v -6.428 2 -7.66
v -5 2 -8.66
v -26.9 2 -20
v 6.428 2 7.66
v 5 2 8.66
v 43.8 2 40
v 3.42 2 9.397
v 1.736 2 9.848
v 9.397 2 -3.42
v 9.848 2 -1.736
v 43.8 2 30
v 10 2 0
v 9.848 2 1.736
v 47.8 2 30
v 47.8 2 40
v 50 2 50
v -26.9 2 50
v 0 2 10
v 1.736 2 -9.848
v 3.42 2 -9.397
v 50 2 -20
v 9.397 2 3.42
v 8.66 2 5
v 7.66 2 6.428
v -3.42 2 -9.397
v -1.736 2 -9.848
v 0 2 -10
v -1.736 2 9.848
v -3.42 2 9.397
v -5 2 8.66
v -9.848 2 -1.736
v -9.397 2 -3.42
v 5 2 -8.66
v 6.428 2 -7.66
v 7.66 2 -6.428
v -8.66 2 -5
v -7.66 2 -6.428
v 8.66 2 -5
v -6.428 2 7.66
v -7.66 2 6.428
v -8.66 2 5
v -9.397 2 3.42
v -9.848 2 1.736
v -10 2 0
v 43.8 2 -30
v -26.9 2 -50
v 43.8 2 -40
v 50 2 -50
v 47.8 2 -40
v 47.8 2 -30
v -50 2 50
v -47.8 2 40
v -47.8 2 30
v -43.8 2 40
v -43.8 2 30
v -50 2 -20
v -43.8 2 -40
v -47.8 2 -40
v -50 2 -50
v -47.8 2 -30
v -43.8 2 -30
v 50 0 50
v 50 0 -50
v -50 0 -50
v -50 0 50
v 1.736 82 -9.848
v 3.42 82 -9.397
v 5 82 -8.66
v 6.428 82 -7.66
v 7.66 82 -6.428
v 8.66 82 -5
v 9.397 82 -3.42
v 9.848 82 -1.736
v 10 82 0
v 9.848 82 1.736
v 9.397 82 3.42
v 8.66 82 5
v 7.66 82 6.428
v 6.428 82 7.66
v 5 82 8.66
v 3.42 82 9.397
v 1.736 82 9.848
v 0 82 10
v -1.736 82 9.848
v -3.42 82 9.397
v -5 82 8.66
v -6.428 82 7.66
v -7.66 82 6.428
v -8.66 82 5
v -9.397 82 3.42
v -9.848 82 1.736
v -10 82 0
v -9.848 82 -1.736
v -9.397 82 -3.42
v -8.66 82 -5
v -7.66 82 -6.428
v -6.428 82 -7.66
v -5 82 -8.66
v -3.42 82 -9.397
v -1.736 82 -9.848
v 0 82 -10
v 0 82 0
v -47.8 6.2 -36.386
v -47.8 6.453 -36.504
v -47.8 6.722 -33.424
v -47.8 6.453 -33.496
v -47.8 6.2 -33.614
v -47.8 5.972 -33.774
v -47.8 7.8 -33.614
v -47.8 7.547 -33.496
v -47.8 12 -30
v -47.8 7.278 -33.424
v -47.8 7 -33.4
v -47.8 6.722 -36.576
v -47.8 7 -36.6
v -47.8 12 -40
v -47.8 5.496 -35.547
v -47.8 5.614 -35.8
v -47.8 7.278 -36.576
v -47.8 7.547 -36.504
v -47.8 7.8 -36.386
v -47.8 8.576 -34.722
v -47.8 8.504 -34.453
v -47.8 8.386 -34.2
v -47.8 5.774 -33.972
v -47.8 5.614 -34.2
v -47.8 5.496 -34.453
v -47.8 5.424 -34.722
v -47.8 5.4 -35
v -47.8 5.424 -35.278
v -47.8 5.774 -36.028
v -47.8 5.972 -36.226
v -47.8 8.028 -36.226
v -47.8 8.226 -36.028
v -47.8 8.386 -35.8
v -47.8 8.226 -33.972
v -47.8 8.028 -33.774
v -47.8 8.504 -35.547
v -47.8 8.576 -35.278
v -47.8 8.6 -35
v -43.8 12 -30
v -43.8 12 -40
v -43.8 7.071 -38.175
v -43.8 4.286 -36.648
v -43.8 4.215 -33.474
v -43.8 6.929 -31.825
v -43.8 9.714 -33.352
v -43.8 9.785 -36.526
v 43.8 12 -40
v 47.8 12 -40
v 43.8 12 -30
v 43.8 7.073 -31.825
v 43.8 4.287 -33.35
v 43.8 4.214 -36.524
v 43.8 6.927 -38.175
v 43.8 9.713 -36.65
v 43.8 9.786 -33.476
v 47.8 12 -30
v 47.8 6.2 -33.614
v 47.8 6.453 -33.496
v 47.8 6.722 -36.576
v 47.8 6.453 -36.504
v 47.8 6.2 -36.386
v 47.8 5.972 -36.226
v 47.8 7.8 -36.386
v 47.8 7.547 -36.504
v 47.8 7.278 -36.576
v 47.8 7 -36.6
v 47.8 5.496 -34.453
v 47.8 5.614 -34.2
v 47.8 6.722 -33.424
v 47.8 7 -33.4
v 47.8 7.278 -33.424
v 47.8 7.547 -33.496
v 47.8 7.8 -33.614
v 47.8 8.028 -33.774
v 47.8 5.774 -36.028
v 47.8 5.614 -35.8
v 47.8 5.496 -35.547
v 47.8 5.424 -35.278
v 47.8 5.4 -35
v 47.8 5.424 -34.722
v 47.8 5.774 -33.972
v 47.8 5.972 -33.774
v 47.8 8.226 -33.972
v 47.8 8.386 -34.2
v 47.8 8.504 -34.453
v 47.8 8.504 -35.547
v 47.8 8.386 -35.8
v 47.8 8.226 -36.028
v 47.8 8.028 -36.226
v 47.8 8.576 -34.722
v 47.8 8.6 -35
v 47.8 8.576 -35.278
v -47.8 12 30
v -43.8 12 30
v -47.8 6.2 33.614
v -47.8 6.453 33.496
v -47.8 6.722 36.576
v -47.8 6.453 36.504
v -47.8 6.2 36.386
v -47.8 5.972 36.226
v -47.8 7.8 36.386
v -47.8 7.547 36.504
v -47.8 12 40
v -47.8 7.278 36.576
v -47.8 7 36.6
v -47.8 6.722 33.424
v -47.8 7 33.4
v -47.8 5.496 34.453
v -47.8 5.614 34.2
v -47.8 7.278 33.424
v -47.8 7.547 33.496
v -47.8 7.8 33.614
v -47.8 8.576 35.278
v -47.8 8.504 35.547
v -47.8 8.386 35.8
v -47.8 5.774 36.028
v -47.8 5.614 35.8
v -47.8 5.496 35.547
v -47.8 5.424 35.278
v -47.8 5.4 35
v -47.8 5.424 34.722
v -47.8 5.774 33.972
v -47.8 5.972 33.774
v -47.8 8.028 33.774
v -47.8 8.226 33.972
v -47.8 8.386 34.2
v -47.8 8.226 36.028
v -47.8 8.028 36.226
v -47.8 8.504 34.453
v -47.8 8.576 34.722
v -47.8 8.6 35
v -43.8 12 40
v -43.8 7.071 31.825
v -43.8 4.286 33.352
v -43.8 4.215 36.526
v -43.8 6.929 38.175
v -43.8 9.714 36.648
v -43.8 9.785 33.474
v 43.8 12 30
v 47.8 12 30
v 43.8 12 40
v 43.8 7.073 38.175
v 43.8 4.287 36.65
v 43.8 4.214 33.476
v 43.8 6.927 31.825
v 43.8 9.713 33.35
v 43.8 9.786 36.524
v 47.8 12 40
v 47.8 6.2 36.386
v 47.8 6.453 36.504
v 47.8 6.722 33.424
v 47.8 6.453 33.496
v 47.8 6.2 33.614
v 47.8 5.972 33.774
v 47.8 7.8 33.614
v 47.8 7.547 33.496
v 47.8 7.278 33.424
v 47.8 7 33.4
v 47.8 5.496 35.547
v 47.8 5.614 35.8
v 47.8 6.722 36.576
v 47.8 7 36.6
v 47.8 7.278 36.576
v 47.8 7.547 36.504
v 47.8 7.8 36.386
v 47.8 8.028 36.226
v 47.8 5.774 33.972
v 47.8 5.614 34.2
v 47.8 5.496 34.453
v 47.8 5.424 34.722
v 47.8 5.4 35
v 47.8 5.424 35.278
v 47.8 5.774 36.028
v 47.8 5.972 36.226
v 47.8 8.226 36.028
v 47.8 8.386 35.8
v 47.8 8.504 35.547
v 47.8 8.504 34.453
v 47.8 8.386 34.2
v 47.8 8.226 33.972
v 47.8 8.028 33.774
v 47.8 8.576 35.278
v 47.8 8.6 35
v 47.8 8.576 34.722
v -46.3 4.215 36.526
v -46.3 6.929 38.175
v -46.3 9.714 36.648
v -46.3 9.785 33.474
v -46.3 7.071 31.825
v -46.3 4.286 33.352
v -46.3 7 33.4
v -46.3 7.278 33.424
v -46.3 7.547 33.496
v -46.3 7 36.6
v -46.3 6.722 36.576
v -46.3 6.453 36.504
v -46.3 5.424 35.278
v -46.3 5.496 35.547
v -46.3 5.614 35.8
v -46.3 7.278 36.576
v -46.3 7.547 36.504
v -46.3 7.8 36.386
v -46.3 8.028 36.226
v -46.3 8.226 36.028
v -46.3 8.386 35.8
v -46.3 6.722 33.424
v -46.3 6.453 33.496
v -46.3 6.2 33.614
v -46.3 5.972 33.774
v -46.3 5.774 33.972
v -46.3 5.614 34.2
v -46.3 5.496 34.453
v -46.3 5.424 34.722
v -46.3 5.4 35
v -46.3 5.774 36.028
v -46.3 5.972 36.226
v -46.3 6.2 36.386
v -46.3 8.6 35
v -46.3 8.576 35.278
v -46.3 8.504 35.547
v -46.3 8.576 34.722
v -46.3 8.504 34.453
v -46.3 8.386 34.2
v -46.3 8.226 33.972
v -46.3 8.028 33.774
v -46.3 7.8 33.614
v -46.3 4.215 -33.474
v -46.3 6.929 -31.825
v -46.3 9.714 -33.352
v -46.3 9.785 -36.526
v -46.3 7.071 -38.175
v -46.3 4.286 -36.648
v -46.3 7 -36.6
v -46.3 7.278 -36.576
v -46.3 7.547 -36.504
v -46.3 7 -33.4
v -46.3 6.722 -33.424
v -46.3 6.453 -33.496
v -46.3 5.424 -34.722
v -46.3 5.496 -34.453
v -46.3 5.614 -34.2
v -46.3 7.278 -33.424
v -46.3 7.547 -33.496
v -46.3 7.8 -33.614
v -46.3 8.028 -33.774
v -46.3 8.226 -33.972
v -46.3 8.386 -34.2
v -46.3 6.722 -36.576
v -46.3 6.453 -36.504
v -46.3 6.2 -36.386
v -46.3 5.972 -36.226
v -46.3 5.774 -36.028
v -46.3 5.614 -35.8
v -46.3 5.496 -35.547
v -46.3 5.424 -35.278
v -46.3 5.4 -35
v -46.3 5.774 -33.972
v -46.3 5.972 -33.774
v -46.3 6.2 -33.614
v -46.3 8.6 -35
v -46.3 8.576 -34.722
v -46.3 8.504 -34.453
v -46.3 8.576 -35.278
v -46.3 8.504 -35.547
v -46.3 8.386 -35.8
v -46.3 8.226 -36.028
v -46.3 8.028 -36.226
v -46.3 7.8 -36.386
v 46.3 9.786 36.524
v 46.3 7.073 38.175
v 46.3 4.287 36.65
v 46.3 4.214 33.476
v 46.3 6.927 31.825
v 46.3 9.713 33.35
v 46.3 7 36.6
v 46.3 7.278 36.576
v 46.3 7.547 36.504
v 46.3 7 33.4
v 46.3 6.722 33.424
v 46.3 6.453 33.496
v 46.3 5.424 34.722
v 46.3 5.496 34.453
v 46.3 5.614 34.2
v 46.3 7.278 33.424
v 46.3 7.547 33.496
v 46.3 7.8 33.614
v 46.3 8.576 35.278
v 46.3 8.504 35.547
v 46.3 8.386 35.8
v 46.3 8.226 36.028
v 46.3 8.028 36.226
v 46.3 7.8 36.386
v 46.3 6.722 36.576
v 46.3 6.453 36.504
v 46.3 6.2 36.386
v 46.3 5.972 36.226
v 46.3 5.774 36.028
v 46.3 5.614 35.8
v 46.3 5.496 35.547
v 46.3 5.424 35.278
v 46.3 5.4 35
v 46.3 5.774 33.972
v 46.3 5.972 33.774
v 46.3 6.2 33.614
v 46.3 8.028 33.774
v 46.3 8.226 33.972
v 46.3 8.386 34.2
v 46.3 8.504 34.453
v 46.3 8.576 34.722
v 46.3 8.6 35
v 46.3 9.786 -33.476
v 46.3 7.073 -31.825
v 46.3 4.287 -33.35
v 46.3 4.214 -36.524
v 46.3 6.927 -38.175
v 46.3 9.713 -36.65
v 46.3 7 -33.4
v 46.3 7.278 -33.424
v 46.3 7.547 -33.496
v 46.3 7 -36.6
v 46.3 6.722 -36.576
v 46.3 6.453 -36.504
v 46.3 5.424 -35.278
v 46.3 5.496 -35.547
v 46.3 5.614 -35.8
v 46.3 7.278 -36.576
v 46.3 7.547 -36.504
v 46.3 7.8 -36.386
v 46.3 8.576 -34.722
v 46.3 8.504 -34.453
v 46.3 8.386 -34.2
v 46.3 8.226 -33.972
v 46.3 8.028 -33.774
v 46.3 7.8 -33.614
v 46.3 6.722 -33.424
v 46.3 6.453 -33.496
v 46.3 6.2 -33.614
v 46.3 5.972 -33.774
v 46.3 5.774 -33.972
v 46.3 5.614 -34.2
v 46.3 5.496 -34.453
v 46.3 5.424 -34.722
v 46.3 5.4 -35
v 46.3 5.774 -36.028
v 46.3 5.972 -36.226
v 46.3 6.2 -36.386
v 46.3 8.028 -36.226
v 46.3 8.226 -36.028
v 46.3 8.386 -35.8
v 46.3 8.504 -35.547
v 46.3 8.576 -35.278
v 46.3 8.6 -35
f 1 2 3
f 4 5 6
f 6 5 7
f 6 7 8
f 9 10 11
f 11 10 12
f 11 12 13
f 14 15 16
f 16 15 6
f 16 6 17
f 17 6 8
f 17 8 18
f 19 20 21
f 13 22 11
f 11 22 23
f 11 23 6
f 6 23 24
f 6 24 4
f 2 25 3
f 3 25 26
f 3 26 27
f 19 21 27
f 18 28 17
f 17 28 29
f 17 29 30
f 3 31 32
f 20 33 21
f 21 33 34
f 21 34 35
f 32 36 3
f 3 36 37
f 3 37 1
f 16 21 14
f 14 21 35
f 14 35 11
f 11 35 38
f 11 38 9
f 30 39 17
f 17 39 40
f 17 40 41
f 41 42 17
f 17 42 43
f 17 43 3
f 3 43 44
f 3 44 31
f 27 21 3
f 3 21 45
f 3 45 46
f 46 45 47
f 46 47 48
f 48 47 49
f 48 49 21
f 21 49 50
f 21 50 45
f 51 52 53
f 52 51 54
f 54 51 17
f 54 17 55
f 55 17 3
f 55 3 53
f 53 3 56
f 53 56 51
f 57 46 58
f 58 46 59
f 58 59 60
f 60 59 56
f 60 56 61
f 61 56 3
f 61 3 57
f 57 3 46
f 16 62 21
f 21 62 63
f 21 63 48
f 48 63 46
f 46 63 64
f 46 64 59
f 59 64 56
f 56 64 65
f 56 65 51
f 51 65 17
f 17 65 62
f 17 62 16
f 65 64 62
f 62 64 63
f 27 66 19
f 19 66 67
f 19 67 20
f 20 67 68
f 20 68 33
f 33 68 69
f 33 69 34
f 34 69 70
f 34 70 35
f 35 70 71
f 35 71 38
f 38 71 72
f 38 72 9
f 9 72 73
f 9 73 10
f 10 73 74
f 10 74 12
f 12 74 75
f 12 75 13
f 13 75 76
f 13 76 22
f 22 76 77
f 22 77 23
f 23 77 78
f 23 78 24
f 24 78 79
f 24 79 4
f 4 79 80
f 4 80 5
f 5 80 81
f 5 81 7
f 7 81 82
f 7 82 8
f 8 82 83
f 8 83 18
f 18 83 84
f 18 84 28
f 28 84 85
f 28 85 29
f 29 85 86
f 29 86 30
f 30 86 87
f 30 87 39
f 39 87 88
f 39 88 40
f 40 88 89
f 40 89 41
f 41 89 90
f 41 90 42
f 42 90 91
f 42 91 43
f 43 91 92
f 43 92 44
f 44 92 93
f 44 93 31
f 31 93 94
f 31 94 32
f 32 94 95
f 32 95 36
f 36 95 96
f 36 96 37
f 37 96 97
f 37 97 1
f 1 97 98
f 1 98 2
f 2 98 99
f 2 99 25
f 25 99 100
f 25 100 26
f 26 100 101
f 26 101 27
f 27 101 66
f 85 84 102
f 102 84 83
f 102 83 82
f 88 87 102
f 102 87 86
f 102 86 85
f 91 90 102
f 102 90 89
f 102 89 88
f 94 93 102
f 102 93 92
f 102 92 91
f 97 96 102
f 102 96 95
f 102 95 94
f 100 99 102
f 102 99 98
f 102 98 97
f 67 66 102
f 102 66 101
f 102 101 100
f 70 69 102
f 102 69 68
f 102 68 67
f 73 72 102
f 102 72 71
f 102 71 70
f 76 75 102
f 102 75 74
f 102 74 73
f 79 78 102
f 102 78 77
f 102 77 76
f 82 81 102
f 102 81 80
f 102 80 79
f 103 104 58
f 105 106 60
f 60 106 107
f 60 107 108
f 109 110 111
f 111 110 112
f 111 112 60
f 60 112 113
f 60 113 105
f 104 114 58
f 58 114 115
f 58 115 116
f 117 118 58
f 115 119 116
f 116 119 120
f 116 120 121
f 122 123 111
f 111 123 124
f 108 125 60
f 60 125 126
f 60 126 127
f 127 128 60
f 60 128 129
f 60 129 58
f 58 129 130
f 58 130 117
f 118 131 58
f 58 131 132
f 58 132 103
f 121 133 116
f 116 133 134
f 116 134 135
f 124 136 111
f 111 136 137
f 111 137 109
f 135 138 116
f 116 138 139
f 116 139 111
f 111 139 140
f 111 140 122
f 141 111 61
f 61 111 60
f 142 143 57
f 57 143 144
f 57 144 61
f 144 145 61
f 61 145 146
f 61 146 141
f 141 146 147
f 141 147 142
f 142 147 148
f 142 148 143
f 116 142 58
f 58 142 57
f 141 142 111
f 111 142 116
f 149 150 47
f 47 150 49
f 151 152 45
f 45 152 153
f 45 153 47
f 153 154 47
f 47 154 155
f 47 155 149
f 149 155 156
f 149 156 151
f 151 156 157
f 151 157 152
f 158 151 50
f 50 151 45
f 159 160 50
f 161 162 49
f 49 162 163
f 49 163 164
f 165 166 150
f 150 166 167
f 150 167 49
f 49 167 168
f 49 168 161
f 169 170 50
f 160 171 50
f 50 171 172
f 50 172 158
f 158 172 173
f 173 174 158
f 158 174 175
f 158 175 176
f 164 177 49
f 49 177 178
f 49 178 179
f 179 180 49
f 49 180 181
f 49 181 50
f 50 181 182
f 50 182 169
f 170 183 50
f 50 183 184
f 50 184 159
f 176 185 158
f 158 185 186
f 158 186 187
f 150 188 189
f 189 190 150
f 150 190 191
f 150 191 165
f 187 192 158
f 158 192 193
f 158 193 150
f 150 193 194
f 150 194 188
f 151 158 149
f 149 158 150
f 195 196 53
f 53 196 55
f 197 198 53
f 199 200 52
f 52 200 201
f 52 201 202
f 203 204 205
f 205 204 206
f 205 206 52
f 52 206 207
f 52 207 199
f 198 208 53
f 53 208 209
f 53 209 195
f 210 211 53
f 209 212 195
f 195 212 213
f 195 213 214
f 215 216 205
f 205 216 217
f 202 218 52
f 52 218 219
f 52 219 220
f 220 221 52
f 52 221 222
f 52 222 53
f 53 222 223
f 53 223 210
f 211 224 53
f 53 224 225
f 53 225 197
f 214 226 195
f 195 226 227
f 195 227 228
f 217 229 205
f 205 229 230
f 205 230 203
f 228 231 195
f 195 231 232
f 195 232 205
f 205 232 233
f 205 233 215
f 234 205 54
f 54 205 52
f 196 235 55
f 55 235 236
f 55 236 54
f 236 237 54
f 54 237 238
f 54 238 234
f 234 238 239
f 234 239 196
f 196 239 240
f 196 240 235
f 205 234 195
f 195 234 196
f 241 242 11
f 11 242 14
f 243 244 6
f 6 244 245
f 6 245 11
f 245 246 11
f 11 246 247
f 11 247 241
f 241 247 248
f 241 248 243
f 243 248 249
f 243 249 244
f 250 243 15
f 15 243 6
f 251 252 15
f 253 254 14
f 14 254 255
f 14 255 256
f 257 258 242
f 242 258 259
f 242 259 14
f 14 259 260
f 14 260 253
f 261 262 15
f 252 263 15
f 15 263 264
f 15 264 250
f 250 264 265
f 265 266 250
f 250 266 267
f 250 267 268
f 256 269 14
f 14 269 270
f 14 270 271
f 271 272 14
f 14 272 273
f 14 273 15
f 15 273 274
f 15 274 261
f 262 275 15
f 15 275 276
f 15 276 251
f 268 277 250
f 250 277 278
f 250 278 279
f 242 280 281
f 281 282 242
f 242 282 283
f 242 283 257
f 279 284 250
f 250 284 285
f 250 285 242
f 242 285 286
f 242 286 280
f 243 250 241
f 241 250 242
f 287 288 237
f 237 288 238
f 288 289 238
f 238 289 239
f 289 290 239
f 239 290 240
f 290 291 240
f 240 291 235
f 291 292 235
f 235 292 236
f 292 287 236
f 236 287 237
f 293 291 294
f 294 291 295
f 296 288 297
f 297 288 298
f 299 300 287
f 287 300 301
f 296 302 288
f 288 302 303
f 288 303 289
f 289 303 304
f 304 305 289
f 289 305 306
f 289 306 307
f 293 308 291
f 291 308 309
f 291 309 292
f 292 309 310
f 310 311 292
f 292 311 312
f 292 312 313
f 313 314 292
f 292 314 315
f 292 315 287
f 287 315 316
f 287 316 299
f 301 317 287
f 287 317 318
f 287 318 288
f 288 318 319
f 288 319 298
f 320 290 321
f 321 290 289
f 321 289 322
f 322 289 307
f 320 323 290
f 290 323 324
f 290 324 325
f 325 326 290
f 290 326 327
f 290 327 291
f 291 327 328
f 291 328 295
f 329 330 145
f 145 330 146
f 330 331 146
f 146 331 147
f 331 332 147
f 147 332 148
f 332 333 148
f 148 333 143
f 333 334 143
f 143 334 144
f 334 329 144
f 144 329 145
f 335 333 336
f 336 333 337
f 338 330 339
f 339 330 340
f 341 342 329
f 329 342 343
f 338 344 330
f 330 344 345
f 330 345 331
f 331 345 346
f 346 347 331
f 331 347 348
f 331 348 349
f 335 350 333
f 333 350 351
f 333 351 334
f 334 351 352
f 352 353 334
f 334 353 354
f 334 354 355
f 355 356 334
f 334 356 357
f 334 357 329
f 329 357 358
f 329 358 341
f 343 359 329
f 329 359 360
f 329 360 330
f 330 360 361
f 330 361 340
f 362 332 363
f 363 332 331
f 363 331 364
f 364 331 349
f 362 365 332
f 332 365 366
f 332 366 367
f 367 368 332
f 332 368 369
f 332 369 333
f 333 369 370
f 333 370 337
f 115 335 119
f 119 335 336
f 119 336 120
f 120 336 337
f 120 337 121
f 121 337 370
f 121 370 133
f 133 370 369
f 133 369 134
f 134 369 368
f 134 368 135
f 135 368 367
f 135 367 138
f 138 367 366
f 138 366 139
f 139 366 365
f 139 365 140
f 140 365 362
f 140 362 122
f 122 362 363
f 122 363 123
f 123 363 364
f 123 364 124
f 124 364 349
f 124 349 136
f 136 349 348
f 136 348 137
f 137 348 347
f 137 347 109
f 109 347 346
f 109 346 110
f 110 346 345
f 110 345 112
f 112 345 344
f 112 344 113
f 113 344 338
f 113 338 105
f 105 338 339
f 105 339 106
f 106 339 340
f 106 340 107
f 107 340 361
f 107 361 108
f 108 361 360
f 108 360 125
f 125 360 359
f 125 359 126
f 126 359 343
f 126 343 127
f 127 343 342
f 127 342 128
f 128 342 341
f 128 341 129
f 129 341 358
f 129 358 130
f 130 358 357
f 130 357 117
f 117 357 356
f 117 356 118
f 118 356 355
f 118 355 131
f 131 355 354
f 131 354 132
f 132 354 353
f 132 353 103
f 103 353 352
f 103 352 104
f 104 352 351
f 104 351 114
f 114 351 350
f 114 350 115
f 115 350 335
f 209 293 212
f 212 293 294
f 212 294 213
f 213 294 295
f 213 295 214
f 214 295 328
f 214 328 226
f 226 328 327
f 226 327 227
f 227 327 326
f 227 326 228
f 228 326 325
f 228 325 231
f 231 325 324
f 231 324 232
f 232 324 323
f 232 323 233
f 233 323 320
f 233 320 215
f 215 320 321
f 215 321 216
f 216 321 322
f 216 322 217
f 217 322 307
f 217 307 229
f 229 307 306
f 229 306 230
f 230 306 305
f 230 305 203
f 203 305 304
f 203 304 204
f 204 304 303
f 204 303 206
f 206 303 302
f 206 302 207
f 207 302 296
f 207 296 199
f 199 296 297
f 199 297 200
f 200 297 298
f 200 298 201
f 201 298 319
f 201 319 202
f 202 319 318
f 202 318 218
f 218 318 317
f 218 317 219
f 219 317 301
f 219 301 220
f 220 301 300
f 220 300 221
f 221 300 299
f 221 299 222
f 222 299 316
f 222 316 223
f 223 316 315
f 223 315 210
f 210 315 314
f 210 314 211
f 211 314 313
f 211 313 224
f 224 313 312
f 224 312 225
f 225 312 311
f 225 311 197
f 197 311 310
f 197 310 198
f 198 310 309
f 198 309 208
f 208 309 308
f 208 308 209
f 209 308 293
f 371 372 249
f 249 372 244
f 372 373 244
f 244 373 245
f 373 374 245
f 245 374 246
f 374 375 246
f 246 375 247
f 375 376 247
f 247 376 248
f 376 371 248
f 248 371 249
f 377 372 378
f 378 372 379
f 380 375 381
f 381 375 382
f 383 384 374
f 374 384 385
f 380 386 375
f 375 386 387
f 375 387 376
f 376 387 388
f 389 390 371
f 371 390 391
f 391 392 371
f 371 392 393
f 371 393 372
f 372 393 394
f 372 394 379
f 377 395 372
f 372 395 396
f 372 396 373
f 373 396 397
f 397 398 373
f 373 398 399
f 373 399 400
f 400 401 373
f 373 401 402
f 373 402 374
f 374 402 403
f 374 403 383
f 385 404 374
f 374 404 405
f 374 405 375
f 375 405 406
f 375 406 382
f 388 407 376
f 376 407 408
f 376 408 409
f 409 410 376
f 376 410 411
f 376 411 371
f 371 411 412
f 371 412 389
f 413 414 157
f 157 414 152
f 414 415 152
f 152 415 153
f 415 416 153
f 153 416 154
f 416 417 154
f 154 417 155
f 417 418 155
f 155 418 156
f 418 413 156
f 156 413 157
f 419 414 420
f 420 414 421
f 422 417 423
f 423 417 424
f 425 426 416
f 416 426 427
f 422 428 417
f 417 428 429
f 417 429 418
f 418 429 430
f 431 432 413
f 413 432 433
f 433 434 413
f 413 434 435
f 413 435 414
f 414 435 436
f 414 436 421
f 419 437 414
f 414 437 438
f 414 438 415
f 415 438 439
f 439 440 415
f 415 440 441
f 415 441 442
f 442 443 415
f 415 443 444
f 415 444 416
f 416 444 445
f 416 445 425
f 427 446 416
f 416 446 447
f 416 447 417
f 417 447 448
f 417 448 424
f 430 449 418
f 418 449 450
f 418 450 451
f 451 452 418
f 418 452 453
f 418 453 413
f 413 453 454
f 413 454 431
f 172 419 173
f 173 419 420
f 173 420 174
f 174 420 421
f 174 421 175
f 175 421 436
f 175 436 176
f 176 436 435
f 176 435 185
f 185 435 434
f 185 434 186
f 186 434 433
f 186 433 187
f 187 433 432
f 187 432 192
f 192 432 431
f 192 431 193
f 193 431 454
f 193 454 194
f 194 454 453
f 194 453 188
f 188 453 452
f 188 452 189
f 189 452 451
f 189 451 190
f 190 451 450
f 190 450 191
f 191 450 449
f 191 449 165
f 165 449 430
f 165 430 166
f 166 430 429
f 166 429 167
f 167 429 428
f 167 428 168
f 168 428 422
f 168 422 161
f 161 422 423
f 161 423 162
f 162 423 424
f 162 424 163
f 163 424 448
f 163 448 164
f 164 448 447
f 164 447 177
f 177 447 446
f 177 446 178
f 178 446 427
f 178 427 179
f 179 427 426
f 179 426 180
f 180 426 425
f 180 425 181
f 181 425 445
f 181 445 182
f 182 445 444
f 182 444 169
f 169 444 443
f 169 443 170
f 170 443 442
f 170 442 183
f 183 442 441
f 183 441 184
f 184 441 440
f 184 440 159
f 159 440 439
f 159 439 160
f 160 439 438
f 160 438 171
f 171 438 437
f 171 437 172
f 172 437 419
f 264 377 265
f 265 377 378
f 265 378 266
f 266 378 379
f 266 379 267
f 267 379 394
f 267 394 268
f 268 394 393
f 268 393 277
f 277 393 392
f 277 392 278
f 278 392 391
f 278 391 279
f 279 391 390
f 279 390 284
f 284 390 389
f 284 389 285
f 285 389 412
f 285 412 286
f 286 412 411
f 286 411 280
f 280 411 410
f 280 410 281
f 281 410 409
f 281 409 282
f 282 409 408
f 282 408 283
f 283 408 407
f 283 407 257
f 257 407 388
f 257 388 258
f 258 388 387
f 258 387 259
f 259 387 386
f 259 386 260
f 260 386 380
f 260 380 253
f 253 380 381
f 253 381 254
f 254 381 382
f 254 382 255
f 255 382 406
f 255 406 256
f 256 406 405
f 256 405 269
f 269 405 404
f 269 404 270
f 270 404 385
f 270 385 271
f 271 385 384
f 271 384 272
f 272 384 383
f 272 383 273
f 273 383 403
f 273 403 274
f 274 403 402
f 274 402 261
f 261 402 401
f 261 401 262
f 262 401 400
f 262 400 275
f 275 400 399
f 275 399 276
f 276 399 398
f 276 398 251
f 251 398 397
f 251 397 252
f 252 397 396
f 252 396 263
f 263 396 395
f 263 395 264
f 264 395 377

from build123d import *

# Parameters (mm, degrees)
IZIM1_W                     = 100
IZIM1_H                     = 100
Y_KSEKLIK_EKSTR_ZYON1_DEPTH = 2
IZIM2_R                     = 10
Y_KSEKLIK_EKSTR_ZYON2_DEPTH = 80
IZIM3_W                     = 4
IZIM3_H                     = 10
Y_KSEKLIK_EKSTR_ZYON3_DEPTH = 10
KES_EKSTR_ZYON1_DEPTH       = 2.5
IZIM6_R                     = 1.6
KES_EKSTR_ZYON2_DEPTH       = 5
KES_EKSTR_ZYON3_DEPTH       = 2.5
KES_EKSTR_ZYON4_START       = -5
IZIM8_R                     = 1.6
KES_EKSTR_ZYON4_DEPTH       = 5


with BuildPart() as part:
    # Çizim1 → Yükseklik-Ekstrüzyon1 (new body)
    with BuildSketch(Plane(origin=(0, 0, 0), x_dir=(1, 0, 0), z_dir=(0, 1, 0))):
        Rectangle(IZIM1_W, IZIM1_H)
    extrude(amount=Y_KSEKLIK_EKSTR_ZYON1_DEPTH)

    # Çizim2 → Yükseklik-Ekstrüzyon2 (add)
    with BuildSketch(Plane(origin=(0, 2, 0), x_dir=(1, 0, 0), z_dir=(0, 1, 0))):
        with Locations(Location((0, 0, 0), (0, 0, 270))):
            Circle(IZIM2_R)
    extrude(amount=Y_KSEKLIK_EKSTR_ZYON2_DEPTH)

    # Çizim3 → Yükseklik-Ekstrüzyon3 (add)
    with BuildSketch(Plane(origin=(0, 2, 0), x_dir=(1, 0, 0), z_dir=(0, 1, 0))):
        with Locations((-45.8, 35)):
            Rectangle(IZIM3_W, IZIM3_H)
        with Locations((45.8, 35)):
            Rectangle(IZIM3_W, IZIM3_H)
        with Locations((-45.8, -35)):
            Rectangle(IZIM3_W, IZIM3_H)
        with Locations((45.8, -35)):
            Rectangle(IZIM3_W, IZIM3_H)
    extrude(amount=Y_KSEKLIK_EKSTR_ZYON3_DEPTH)

    # Çizim5 → Kes-Ekstrüzyon1 (cut)
    with BuildSketch(Plane(origin=(-43.8, 0, 0), x_dir=(0, 0, -1), z_dir=(1, 0, 0))):
        Polygon((-36.526149852, 4.215363585), (-33.35150905, 4.285997251), (-31.825359198, 7.070633666), (-33.473850148, 9.784636415), (-36.64849095, 9.714002749), (-38.174640802, 6.929366334), align=None)
        Polygon((33.473850148, 4.215363585), (36.64849095, 4.285997251), (38.174640802, 7.070633666), (36.526149852, 9.784636415), (33.35150905, 9.714002749), (31.825359198, 6.929366334), align=None)
    extrude(amount=-KES_EKSTR_ZYON1_DEPTH, mode=Mode.SUBTRACT)

    # Çizim6 → Kes-Ekstrüzyon2 (cut)
    with BuildSketch(Plane(origin=(-43.8, 0, 0), x_dir=(0, 0, -1), z_dir=(1, 0, 0))):
        with Locations((-35, 7)):
            Circle(IZIM6_R)
        with Locations((35, 7)):
            Circle(IZIM6_R)
    extrude(amount=-KES_EKSTR_ZYON2_DEPTH, mode=Mode.SUBTRACT)

    # Çizim7 → Kes-Ekstrüzyon3 (cut)
    with BuildSketch(Plane.ZY.offset(-43.8)):
        Polygon((-33.475734775, 9.785668476), (-36.650327054, 9.712886645), (-38.174592279, 6.927218169), (-36.524265225, 4.214331524), (-33.349672946, 4.287113355), (-31.825407721, 7.072781831), align=None)
        Polygon((36.524265225, 9.785668476), (33.349672946, 9.712886645), (31.825407721, 6.927218169), (33.475734775, 4.214331524), (36.650327054, 4.287113355), (38.174592279, 7.072781831), align=None)
    extrude(amount=-KES_EKSTR_ZYON3_DEPTH, mode=Mode.SUBTRACT)

    # Çizim8 → Kes-Ekstrüzyon4 (cut)
    with BuildSketch(Plane.ZY.offset(-43.8).offset(KES_EKSTR_ZYON4_START)):
        with Locations(Location((35, 7, 0), (0, 0, 180))):
            Circle(IZIM8_R)
        with Locations(Location((-35, 7, 0), (0, 0, 180))):
            Circle(IZIM8_R)
    extrude(amount=KES_EKSTR_ZYON4_DEPTH, mode=Mode.SUBTRACT)


solid = part.part
